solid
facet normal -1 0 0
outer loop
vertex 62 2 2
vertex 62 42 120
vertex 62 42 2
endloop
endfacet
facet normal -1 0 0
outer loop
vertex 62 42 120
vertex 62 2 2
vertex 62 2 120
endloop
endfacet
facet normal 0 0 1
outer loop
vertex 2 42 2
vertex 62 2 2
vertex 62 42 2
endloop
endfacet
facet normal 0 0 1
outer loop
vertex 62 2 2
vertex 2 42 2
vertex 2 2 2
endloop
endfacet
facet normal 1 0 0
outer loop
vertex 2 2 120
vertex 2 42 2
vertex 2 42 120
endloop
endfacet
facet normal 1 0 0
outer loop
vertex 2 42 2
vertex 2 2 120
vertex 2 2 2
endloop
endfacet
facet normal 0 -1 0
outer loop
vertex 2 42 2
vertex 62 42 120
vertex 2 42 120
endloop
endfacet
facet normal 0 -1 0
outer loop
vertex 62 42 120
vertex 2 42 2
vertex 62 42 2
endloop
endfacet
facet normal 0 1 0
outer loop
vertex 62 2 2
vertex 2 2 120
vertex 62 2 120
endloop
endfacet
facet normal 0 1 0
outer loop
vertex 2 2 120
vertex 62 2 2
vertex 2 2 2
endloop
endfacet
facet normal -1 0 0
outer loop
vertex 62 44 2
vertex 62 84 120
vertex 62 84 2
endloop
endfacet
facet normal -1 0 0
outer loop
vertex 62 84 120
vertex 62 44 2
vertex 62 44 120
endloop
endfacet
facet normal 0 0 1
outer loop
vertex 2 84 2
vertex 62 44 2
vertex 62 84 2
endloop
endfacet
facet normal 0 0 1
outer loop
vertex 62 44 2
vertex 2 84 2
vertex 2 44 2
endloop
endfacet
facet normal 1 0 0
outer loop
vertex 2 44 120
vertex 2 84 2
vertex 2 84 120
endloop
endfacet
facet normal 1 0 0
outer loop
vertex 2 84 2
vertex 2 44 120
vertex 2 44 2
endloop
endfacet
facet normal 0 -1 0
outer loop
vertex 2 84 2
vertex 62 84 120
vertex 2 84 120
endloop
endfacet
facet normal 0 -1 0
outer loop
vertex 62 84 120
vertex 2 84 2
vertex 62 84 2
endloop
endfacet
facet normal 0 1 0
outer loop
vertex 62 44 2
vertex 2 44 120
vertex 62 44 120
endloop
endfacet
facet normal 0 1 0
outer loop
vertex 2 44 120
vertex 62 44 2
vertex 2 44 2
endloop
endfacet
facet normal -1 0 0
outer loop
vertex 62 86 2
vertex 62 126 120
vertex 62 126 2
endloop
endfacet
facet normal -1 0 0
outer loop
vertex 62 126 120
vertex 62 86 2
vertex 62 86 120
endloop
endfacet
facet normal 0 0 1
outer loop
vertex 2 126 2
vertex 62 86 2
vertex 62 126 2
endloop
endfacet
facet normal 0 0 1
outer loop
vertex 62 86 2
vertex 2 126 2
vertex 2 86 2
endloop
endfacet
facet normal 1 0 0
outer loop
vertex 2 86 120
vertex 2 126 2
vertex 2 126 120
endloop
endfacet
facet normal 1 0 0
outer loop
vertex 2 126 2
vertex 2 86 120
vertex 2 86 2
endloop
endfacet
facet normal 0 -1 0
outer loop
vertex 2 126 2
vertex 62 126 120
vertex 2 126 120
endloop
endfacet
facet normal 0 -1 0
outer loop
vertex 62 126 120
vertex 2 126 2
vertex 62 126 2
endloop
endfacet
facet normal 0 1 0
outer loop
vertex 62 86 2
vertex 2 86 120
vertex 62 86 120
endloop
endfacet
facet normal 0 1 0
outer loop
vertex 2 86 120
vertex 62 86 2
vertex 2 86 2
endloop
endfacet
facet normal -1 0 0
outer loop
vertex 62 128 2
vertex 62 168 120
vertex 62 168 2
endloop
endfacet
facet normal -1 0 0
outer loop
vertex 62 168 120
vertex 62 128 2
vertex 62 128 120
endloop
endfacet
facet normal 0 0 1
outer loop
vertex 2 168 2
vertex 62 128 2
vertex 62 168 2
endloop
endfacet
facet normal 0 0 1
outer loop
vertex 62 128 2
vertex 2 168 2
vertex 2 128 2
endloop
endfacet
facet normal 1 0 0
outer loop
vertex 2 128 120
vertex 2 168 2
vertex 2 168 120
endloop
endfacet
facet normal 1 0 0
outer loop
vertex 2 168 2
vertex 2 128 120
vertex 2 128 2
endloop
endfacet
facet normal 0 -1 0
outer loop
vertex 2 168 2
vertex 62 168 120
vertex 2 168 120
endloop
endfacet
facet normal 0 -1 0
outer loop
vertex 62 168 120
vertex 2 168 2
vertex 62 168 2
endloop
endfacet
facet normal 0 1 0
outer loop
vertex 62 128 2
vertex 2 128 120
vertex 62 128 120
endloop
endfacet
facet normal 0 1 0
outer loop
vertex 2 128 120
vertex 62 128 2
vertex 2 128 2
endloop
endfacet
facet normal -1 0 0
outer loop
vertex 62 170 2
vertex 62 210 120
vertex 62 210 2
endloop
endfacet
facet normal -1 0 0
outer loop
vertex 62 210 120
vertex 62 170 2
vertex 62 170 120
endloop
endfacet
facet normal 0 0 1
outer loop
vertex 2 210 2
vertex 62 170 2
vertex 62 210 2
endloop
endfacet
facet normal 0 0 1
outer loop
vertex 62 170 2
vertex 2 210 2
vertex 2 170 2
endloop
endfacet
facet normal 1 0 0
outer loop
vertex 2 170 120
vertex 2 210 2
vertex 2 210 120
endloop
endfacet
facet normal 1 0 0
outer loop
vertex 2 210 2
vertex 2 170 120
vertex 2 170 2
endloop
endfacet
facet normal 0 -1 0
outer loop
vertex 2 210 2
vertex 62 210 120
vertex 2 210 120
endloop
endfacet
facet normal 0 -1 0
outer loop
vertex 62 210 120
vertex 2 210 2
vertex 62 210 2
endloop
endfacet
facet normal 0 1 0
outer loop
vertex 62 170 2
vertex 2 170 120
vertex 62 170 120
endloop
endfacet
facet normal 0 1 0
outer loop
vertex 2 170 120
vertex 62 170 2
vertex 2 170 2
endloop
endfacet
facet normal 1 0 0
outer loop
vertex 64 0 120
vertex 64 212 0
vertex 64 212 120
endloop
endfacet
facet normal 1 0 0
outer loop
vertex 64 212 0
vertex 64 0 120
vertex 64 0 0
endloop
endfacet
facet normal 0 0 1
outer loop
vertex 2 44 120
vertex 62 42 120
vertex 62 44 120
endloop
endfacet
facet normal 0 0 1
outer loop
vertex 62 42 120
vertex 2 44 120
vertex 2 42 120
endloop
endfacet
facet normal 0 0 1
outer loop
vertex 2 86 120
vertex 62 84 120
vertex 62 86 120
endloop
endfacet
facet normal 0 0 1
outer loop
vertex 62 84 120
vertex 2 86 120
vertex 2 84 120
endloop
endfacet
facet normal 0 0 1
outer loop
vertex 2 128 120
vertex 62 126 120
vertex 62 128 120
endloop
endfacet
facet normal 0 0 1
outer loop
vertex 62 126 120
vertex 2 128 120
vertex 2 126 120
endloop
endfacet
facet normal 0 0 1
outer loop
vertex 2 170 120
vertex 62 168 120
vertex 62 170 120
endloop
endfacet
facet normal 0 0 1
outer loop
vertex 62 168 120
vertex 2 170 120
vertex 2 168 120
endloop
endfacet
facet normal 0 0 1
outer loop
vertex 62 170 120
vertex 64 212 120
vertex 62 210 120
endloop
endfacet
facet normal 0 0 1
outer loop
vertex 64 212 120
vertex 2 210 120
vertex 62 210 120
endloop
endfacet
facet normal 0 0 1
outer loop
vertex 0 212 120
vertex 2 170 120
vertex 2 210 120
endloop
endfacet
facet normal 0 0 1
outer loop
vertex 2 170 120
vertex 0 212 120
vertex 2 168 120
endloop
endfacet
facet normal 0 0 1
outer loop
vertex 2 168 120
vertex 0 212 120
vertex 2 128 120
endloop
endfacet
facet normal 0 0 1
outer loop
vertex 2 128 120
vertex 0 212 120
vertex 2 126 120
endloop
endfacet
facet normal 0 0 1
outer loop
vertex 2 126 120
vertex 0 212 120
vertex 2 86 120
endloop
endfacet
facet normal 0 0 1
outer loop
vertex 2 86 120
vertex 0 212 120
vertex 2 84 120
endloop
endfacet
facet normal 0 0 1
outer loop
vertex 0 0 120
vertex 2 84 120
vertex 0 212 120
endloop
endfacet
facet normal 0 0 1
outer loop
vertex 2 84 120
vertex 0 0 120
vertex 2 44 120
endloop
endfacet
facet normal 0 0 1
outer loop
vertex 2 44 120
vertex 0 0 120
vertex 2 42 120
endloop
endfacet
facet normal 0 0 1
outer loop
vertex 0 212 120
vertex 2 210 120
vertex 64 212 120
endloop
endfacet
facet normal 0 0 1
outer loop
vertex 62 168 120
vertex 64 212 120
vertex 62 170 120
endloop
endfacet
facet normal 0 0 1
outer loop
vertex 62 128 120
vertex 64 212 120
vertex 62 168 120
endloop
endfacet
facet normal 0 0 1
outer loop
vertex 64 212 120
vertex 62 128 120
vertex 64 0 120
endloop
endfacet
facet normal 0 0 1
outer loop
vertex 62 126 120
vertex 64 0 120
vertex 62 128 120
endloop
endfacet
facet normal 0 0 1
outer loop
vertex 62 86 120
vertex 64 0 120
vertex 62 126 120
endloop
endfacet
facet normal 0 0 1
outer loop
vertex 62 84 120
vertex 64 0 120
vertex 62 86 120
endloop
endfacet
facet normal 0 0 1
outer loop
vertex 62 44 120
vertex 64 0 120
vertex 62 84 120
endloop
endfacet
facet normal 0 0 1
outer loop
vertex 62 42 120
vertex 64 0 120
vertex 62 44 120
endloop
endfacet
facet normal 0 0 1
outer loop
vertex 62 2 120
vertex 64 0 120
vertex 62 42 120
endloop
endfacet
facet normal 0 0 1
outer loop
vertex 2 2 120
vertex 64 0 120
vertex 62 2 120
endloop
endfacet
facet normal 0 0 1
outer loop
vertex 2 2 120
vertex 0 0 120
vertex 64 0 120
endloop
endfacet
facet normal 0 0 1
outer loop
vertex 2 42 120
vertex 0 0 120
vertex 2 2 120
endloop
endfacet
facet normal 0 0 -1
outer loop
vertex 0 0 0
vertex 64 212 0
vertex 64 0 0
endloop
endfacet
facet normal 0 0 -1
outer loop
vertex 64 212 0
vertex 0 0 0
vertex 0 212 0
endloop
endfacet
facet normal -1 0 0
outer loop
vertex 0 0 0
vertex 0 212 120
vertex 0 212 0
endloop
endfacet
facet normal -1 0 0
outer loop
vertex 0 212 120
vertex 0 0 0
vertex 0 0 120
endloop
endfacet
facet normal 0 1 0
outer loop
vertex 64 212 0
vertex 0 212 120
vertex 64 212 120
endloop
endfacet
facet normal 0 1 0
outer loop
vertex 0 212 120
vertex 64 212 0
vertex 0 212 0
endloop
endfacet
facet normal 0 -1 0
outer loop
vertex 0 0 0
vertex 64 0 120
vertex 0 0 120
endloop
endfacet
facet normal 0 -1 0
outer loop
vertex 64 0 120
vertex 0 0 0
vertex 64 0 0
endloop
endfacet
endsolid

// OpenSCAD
count = 5;

l=60;
p=40;

wall=2;

difference() {
	cube([l+wall*2,p*count+wall*count+wall,120]);
	for (y=[0:count-1]) 
		translate([wall, wall+wall*y+ p*y, wall])
			cube([l,p,120]);
	
}
